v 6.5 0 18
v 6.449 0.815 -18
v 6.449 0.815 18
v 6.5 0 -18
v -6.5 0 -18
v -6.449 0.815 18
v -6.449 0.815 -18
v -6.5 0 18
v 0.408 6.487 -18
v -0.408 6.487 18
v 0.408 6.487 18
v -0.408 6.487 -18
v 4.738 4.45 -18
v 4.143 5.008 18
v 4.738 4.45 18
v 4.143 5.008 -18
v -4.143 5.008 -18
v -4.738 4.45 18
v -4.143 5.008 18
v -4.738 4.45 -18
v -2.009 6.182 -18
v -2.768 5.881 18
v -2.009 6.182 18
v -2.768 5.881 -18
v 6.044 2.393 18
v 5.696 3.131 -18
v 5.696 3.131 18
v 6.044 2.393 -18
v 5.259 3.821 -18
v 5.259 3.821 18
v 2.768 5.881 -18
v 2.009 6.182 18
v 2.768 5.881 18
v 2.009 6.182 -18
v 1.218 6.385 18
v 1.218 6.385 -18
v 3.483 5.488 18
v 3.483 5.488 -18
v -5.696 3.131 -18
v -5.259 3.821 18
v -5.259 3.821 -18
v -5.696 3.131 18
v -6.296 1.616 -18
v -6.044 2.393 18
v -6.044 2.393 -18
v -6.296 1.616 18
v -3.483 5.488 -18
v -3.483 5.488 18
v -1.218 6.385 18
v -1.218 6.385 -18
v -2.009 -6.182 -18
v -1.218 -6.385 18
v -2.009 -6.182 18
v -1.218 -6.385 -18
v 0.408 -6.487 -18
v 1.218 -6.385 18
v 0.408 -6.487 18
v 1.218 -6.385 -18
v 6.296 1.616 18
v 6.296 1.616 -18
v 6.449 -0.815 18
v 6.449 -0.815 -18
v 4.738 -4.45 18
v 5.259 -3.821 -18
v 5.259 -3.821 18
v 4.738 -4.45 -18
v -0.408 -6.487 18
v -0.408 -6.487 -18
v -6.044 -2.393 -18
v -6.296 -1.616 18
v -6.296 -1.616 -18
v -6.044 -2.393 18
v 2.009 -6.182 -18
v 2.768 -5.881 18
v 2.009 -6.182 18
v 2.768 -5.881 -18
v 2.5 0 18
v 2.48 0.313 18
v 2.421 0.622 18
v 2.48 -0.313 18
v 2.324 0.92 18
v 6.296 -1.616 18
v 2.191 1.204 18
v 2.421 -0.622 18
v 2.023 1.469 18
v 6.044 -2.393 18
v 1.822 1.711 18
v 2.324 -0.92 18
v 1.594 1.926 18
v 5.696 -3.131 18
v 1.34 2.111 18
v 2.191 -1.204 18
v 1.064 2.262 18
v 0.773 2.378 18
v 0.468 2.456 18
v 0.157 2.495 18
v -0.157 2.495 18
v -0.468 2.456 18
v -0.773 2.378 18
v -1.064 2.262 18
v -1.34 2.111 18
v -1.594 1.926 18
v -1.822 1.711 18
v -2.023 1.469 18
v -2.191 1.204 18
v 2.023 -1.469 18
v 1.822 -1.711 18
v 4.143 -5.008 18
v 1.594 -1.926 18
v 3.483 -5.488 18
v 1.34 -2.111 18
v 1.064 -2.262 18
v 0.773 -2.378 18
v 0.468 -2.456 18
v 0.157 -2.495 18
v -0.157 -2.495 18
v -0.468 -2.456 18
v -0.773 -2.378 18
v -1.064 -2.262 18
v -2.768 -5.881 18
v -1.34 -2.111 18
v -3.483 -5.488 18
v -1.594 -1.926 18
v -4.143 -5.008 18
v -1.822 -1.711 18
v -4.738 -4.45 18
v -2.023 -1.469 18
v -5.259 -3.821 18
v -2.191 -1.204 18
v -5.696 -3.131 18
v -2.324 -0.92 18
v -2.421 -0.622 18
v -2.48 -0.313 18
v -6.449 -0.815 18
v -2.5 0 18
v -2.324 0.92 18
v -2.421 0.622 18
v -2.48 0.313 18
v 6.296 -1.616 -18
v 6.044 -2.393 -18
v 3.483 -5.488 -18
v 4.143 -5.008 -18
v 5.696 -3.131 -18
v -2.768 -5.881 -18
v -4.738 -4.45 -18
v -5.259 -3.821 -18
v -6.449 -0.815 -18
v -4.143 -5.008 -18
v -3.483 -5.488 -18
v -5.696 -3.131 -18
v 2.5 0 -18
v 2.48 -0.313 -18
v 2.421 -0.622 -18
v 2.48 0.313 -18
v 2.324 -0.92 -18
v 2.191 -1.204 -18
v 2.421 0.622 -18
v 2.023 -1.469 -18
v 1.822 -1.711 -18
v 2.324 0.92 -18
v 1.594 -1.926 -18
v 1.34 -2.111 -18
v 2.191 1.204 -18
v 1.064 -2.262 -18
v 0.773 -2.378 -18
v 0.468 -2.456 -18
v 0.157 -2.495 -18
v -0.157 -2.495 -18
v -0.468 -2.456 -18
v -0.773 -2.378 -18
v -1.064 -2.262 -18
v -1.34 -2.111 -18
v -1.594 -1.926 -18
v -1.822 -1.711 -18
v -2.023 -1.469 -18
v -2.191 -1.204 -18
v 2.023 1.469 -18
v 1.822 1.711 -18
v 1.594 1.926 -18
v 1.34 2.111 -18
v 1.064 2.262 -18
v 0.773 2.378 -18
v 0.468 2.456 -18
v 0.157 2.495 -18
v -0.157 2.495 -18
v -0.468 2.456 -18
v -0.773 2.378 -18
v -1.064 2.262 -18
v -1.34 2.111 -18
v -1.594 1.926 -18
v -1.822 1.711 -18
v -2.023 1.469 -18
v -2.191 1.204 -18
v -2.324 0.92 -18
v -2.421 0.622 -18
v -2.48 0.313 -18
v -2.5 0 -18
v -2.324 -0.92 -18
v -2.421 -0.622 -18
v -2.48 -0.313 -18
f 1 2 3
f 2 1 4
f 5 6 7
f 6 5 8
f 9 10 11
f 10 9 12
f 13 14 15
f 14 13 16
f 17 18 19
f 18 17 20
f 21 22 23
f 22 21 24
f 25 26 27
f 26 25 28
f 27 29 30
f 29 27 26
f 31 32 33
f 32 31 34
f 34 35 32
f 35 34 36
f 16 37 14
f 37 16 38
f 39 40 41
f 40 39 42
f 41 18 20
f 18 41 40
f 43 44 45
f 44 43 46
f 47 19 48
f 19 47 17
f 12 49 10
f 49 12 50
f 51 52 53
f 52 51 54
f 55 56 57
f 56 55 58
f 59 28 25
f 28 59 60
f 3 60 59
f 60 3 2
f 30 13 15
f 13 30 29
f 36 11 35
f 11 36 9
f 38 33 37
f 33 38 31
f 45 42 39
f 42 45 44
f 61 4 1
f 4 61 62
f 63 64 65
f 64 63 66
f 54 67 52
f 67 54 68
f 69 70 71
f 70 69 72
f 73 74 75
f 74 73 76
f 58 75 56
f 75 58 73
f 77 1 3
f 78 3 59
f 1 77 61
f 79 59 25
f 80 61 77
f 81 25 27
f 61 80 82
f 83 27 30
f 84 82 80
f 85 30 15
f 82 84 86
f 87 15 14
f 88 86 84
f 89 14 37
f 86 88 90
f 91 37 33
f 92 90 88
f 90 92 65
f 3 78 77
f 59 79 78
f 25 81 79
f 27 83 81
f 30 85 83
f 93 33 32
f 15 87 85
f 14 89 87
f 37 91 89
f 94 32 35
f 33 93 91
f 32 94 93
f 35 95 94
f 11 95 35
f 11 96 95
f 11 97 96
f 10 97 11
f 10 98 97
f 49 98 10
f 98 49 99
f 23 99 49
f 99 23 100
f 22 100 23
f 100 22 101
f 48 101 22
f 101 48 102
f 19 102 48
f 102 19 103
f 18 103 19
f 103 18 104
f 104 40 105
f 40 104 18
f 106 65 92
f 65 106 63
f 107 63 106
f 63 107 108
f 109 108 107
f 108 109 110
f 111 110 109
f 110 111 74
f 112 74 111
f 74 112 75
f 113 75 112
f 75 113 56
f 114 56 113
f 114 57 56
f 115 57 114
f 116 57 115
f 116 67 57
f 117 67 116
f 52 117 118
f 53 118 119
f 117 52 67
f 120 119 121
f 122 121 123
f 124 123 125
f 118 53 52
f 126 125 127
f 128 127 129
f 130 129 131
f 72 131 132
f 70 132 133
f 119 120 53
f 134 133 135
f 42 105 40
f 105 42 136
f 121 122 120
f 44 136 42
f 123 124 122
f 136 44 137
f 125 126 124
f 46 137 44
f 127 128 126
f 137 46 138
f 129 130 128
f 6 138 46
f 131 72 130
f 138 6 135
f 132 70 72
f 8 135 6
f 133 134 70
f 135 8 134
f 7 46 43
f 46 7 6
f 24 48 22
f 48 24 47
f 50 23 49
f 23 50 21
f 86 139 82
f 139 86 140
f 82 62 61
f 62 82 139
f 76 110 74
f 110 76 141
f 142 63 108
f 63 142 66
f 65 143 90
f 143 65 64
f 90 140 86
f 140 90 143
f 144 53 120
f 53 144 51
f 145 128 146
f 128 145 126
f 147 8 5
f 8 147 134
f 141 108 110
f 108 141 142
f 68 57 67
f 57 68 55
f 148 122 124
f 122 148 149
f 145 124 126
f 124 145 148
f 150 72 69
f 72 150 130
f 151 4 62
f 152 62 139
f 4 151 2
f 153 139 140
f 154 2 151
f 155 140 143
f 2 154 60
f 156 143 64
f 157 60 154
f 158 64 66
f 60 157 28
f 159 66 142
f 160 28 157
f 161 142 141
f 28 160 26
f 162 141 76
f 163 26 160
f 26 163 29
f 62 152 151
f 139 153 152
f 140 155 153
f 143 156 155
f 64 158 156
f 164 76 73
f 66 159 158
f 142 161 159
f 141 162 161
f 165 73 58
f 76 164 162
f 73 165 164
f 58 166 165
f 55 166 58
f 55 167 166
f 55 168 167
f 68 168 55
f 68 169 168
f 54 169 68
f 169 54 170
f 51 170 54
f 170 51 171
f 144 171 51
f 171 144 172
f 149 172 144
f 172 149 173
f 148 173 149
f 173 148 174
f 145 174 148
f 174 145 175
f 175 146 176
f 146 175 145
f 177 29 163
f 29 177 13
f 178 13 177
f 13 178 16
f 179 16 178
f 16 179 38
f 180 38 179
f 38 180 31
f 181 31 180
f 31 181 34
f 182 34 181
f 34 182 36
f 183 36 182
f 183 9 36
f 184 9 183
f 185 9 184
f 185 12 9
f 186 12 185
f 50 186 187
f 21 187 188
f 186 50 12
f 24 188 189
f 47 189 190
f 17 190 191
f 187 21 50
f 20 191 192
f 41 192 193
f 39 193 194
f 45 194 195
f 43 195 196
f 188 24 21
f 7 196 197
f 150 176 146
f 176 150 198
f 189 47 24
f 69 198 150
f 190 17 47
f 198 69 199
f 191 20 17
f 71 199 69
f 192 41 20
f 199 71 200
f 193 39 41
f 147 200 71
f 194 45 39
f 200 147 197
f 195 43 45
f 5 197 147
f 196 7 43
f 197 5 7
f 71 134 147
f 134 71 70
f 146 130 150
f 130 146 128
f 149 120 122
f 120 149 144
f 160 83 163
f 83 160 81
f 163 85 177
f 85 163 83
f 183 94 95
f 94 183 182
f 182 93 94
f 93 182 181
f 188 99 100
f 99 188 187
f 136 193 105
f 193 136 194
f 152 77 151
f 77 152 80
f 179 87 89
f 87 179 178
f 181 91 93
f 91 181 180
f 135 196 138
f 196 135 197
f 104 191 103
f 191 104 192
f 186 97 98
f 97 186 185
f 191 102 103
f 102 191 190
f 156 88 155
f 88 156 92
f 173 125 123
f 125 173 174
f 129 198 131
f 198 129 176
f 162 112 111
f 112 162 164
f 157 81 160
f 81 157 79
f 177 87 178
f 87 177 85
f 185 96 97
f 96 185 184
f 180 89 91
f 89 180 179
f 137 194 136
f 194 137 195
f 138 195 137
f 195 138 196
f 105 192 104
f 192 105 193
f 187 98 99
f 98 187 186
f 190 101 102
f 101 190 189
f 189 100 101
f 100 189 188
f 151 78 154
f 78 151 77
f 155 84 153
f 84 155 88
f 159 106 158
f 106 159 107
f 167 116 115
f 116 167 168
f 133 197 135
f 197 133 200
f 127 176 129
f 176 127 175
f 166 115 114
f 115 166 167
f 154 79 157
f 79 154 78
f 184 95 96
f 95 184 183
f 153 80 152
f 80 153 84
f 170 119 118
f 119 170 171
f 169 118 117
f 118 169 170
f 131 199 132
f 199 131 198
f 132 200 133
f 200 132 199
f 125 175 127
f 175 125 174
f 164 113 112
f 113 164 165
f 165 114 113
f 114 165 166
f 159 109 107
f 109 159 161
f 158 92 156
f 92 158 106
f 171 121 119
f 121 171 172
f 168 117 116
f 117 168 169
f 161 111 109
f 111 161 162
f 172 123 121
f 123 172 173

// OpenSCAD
$fn = 50;


difference() {
	union() {
		translate(v = [0, 0, -18.0000000000]) {
			cylinder(h = 36, r = 6.5000000000);
		}
	}
	union() {
		translate(v = [0, 0, -100.0000000000]) {
			cylinder(h = 200, r = 2.5000000000);
		}
	}
}
